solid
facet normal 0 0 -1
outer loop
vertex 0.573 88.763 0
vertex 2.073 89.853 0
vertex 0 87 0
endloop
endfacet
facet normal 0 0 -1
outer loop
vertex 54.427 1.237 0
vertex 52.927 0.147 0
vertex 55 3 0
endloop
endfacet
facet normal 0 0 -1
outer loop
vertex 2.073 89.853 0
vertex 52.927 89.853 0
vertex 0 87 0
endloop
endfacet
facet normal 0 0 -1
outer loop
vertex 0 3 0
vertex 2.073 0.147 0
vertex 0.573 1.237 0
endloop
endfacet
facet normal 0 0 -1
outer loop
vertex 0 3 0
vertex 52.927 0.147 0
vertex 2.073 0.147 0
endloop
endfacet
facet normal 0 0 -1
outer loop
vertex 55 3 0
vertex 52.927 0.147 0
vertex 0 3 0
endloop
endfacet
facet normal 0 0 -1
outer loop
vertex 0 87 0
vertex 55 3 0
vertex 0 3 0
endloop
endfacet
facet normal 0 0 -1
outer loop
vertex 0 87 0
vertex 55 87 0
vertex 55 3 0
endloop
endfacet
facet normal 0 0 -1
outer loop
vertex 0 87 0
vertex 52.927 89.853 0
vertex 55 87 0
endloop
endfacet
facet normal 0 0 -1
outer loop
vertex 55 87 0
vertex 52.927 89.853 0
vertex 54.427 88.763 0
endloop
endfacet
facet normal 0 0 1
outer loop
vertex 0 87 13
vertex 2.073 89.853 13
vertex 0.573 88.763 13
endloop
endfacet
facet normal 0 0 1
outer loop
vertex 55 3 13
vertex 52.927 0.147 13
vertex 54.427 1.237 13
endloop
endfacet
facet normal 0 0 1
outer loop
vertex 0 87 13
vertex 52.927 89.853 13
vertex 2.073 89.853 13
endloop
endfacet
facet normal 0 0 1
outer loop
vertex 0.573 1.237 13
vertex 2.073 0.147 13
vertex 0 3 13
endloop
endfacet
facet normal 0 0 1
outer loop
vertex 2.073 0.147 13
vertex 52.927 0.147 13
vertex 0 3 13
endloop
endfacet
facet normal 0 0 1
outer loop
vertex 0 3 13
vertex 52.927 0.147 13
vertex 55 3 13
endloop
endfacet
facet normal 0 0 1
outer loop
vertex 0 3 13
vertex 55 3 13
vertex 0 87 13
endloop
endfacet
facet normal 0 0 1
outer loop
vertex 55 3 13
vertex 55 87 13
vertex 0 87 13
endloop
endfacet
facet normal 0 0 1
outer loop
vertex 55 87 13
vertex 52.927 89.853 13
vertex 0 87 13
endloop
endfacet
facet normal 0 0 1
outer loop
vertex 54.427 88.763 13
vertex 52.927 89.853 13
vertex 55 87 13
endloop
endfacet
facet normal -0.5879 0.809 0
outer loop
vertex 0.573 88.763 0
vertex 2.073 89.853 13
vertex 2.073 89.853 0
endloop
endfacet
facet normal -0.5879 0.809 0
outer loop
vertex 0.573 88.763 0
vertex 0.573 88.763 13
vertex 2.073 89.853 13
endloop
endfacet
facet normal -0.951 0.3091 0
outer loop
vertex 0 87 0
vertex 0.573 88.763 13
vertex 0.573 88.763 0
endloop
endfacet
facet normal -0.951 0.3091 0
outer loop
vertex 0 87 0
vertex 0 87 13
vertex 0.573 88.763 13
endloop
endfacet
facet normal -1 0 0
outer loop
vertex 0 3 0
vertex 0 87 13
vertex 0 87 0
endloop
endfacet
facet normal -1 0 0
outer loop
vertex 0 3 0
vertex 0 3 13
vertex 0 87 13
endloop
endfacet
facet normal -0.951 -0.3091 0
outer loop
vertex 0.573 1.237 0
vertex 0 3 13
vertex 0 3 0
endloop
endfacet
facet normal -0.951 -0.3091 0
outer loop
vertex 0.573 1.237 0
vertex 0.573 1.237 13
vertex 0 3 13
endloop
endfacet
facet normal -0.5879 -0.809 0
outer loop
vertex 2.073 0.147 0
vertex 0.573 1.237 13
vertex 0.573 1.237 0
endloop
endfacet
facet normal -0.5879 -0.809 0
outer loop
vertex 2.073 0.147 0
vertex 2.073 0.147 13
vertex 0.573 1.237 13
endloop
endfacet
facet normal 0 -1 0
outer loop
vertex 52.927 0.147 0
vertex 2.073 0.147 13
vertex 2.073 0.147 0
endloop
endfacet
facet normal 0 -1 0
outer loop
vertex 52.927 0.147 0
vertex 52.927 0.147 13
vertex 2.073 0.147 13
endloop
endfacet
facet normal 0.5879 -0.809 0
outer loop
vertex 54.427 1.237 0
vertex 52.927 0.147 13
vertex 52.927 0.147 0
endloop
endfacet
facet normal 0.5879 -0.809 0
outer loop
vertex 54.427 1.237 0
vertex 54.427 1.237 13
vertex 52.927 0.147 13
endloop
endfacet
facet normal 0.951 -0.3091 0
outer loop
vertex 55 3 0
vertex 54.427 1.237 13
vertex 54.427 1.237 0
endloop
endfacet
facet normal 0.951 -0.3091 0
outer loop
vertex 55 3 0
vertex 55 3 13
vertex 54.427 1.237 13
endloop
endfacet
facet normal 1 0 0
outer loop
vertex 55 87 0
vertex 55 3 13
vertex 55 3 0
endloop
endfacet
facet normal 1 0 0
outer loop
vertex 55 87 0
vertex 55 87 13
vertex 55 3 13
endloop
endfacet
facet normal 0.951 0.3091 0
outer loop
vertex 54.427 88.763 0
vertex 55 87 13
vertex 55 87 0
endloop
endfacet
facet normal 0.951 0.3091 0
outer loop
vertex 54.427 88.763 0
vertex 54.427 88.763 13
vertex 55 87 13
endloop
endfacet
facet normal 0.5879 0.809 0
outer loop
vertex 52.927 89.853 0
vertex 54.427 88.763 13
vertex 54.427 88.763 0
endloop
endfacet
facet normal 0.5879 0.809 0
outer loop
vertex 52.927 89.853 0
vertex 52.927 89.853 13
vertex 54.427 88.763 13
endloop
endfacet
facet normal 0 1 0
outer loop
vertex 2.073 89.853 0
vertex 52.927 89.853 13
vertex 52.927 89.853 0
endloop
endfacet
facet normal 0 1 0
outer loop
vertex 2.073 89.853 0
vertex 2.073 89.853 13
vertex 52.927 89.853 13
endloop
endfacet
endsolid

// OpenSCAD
// file: ../../lib/rounded_square.scad
$bleed = 1;
$rounding = 3;

module rounded_square(size) {
  inner_size = [
    size[0] - $rounding * 2,
    size[1] - $rounding * 2,
  ];

  minkowski() {
    translate([$rounding, $rounding, 0]) {
      square(inner_size);
    }
    circle($rounding);
  }
}
// file: ../../lib/rounded_cube.scad
include <./rounded_square.scad>

$bleed = 1;
$rounding = 3;

// Render a rounded cube
// flat_top: do not round the top edges
// flat_bottom: do not round the bottom edges
// flat: equals flat_top && flat_bottom
// 
// Limitations:
// requires height > $rounding * 2
// flat_top || flat_bottom requires height > $rounding
// flat_top && flat_bottom requires height > $bleed
module rounded_cube(
  size, 
  flat=false, 
  flat_top=false, 
  flat_bottom=false,
  side_rounding=-1
) {
  _flat = flat || (flat_top && flat_bottom);
  _flat_top = flat_top || flat;
  _flat_bottom = flat_bottom || flat;
  _rounding = min($rounding, size[2] / 2);
  _side_rounding = side_rounding > -1 ? side_rounding: $rounding;

  assert(_side_rounding >= $rounding, "side rounding cannot be less than rounding");

  top_height = _flat_top ? 0: _rounding;
  bottom_height = _flat_bottom ? 0: _rounding;

  cube_size = [
    size[0] - _rounding * 2,
    size[1] - _rounding * 2,
    size[2] - (top_height + bottom_height)
  ];

  if (_flat_top && _flat_bottom) {
     linear_extrude(cube_size[2]) {
       rounded_square([size[0], size[1]]);
     }
  } else {
    minkowski() {
      translate([_rounding, _rounding, bottom_height]) {
        if (_side_rounding != _rounding) {
          linear_extrude(cube_size[2]) {
            rounded_square([cube_size[0], cube_size[1]], $rounding=_side_rounding);
          }
        } else {
          cube(cube_size);
        }
      }

      if (_flat_top) {
        difference() {
          sphere(_rounding);
          cylinder(_rounding, _rounding, _rounding);
        }
      } else if (_flat_bottom) {
        difference() {
          sphere(_rounding);
          translate ([0, 0, -_rounding]) {
            cylinder(_rounding, _rounding, _rounding);
          }
        }
      } else {
        sphere(_rounding);
      }
    }
  }
}
// main file
echo(version=version());

include <../../lib/rounded_cube.scad>

$wall_thickness = 2;
$rounding = 3;
$bleed = 0.01;

length = 55;
width = 90;
height = 13;

rounded_cube([length, width, height], flat_top=true, flat_bottom=true);
